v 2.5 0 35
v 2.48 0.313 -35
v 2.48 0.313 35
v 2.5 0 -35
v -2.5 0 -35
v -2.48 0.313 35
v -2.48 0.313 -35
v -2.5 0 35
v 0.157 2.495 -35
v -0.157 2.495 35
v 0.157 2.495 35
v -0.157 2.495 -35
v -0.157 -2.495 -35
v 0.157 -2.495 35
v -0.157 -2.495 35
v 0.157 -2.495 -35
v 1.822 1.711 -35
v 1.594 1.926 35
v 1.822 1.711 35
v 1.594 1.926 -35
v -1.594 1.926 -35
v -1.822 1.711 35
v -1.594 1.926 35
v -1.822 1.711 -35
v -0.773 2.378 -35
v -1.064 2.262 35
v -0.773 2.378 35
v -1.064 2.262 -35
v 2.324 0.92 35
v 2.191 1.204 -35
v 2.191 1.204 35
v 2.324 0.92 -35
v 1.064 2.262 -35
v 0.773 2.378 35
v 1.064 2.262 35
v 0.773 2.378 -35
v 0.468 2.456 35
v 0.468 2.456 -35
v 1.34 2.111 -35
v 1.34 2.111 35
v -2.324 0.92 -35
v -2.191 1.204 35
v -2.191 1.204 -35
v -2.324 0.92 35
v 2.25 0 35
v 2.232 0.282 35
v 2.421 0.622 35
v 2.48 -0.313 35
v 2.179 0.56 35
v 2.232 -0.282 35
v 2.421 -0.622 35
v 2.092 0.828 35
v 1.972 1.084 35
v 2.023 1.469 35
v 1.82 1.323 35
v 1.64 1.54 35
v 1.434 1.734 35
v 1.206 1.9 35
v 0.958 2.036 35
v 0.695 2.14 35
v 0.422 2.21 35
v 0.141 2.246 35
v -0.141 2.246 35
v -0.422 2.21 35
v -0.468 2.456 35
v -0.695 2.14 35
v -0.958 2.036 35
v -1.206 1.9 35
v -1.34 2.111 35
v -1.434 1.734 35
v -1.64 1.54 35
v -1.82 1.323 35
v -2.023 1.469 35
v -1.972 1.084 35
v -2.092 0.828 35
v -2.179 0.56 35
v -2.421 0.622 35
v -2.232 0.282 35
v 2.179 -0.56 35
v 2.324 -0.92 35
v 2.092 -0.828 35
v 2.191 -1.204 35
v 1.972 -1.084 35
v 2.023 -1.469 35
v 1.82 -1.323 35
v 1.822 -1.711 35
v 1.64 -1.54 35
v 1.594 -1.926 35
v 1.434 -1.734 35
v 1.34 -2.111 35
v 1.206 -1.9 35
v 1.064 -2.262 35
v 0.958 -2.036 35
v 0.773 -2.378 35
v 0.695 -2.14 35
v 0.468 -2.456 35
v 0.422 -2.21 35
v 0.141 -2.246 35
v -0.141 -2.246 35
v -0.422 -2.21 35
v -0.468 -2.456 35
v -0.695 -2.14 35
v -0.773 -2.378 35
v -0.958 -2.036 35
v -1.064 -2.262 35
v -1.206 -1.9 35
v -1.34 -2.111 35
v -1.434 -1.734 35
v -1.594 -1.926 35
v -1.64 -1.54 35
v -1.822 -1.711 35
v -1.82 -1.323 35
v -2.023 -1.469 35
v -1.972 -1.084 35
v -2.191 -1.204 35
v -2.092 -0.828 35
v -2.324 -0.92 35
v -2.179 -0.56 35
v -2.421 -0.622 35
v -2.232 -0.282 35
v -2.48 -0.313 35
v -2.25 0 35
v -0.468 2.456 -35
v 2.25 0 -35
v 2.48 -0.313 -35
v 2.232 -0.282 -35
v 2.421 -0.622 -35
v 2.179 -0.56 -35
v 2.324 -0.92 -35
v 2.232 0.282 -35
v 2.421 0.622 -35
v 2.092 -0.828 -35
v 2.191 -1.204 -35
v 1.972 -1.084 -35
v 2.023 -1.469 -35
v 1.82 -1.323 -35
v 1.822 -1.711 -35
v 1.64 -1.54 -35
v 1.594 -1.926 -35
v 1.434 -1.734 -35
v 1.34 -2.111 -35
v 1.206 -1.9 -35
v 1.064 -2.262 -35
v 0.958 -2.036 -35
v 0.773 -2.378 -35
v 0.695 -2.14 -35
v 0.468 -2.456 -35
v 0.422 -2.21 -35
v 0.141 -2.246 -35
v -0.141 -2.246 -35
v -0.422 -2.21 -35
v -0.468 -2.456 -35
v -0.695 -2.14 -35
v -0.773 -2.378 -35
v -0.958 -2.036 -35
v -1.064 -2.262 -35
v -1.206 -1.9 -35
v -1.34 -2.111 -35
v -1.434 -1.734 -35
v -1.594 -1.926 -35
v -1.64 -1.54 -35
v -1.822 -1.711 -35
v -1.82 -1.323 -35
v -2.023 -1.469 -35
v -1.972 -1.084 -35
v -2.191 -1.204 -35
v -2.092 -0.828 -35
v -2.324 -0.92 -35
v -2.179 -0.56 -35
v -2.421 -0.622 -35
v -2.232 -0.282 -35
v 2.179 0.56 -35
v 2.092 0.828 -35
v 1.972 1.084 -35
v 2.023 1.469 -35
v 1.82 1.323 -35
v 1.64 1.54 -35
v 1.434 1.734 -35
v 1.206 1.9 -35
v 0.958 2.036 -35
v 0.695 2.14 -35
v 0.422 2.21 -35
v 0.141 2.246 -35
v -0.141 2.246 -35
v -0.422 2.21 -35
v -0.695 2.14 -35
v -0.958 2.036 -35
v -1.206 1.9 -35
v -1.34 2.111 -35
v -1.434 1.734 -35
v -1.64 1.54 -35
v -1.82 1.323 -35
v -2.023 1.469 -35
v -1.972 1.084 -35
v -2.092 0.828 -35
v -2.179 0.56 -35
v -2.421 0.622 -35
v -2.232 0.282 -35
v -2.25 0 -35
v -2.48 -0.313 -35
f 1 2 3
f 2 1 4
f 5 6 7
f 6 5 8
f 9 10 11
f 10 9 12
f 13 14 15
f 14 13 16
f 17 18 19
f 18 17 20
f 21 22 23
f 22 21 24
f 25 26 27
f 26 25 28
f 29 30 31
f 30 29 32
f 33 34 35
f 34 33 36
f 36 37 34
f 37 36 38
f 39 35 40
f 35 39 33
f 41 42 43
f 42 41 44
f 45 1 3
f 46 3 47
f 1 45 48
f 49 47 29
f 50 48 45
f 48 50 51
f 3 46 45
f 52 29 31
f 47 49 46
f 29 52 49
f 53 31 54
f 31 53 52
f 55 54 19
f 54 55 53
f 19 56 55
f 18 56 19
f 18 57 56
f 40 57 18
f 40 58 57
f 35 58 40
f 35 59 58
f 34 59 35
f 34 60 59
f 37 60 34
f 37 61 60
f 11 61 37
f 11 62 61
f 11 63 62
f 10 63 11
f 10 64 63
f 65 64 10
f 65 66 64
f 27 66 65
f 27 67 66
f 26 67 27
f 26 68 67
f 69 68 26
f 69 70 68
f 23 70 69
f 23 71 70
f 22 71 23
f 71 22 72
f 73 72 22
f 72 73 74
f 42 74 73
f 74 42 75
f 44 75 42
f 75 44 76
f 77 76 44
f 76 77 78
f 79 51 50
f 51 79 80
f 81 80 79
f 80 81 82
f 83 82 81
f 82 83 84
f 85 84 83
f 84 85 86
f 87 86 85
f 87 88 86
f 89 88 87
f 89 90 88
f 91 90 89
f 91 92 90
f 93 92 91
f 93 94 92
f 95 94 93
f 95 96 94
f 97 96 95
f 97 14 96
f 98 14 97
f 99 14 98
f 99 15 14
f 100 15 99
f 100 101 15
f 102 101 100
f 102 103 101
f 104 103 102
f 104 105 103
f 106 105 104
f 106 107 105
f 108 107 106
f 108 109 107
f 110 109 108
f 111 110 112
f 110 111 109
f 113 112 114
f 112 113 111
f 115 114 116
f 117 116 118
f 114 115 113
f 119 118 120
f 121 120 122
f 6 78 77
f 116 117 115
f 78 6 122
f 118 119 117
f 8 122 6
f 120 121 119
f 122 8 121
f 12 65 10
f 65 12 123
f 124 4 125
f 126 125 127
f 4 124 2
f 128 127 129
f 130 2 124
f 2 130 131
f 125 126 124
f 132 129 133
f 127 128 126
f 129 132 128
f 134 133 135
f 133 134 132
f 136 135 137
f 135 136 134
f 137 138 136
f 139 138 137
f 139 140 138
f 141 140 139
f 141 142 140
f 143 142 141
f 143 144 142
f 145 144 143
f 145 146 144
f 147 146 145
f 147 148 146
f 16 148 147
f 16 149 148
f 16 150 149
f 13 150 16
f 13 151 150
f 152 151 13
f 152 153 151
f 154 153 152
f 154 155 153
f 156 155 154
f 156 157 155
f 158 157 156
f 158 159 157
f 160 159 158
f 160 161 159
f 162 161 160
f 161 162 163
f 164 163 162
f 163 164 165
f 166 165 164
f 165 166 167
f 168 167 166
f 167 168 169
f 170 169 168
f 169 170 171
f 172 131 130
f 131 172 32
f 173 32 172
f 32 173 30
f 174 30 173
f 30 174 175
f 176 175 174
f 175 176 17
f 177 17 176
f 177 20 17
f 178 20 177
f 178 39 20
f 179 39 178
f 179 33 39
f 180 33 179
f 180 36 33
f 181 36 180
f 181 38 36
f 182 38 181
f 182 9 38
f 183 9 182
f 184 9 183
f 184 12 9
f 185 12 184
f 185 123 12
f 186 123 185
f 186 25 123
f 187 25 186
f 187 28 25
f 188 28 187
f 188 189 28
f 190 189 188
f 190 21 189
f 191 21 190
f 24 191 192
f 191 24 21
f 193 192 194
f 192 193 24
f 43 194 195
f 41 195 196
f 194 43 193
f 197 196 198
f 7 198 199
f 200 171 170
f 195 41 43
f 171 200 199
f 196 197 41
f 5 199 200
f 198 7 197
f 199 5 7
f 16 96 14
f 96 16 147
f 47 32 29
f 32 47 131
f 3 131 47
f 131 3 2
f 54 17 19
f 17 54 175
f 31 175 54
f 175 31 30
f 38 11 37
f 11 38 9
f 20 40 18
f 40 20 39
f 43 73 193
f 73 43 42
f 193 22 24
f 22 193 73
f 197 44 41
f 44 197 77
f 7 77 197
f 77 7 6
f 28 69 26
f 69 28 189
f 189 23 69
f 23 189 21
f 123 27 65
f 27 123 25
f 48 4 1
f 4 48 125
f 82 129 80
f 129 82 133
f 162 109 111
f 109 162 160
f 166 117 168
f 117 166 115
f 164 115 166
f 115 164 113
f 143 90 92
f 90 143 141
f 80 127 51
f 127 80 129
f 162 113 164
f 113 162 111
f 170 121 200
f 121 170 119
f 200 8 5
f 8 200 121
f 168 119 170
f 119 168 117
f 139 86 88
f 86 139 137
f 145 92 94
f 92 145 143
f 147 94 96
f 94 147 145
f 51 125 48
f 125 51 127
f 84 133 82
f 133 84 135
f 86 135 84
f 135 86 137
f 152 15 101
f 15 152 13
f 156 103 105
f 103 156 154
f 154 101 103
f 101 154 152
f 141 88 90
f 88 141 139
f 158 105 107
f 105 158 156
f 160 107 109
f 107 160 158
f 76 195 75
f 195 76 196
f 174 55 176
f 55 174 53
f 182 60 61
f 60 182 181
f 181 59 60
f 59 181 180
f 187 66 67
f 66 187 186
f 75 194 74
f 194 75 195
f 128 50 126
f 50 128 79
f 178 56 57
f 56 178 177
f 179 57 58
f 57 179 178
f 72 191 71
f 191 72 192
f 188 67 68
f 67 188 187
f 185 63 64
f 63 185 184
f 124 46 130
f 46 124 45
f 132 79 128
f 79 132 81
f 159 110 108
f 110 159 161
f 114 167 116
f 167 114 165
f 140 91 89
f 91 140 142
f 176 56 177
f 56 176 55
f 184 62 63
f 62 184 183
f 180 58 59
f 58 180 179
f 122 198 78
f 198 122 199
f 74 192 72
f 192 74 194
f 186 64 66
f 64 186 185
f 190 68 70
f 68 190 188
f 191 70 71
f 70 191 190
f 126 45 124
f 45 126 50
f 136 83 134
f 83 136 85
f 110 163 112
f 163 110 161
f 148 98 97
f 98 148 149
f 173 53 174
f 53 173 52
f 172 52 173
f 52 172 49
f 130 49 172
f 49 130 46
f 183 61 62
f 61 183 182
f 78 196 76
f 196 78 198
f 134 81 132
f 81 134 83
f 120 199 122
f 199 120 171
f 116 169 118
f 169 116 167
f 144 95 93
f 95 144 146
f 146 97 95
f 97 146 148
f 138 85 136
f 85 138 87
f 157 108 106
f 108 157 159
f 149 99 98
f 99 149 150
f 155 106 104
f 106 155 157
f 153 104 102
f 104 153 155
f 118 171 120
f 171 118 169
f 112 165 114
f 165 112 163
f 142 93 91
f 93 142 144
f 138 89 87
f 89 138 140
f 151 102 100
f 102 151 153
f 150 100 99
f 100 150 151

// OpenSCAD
$fn = 50;


difference() {
	union() {
		translate(v = [0, 0, -35.0000000000]) {
			cylinder(h = 70, r = 2.5000000000);
		}
	}
	union() {
		translate(v = [0, 0, -100.0000000000]) {
			cylinder(h = 200, r = 2.2500000000);
		}
	}
}
